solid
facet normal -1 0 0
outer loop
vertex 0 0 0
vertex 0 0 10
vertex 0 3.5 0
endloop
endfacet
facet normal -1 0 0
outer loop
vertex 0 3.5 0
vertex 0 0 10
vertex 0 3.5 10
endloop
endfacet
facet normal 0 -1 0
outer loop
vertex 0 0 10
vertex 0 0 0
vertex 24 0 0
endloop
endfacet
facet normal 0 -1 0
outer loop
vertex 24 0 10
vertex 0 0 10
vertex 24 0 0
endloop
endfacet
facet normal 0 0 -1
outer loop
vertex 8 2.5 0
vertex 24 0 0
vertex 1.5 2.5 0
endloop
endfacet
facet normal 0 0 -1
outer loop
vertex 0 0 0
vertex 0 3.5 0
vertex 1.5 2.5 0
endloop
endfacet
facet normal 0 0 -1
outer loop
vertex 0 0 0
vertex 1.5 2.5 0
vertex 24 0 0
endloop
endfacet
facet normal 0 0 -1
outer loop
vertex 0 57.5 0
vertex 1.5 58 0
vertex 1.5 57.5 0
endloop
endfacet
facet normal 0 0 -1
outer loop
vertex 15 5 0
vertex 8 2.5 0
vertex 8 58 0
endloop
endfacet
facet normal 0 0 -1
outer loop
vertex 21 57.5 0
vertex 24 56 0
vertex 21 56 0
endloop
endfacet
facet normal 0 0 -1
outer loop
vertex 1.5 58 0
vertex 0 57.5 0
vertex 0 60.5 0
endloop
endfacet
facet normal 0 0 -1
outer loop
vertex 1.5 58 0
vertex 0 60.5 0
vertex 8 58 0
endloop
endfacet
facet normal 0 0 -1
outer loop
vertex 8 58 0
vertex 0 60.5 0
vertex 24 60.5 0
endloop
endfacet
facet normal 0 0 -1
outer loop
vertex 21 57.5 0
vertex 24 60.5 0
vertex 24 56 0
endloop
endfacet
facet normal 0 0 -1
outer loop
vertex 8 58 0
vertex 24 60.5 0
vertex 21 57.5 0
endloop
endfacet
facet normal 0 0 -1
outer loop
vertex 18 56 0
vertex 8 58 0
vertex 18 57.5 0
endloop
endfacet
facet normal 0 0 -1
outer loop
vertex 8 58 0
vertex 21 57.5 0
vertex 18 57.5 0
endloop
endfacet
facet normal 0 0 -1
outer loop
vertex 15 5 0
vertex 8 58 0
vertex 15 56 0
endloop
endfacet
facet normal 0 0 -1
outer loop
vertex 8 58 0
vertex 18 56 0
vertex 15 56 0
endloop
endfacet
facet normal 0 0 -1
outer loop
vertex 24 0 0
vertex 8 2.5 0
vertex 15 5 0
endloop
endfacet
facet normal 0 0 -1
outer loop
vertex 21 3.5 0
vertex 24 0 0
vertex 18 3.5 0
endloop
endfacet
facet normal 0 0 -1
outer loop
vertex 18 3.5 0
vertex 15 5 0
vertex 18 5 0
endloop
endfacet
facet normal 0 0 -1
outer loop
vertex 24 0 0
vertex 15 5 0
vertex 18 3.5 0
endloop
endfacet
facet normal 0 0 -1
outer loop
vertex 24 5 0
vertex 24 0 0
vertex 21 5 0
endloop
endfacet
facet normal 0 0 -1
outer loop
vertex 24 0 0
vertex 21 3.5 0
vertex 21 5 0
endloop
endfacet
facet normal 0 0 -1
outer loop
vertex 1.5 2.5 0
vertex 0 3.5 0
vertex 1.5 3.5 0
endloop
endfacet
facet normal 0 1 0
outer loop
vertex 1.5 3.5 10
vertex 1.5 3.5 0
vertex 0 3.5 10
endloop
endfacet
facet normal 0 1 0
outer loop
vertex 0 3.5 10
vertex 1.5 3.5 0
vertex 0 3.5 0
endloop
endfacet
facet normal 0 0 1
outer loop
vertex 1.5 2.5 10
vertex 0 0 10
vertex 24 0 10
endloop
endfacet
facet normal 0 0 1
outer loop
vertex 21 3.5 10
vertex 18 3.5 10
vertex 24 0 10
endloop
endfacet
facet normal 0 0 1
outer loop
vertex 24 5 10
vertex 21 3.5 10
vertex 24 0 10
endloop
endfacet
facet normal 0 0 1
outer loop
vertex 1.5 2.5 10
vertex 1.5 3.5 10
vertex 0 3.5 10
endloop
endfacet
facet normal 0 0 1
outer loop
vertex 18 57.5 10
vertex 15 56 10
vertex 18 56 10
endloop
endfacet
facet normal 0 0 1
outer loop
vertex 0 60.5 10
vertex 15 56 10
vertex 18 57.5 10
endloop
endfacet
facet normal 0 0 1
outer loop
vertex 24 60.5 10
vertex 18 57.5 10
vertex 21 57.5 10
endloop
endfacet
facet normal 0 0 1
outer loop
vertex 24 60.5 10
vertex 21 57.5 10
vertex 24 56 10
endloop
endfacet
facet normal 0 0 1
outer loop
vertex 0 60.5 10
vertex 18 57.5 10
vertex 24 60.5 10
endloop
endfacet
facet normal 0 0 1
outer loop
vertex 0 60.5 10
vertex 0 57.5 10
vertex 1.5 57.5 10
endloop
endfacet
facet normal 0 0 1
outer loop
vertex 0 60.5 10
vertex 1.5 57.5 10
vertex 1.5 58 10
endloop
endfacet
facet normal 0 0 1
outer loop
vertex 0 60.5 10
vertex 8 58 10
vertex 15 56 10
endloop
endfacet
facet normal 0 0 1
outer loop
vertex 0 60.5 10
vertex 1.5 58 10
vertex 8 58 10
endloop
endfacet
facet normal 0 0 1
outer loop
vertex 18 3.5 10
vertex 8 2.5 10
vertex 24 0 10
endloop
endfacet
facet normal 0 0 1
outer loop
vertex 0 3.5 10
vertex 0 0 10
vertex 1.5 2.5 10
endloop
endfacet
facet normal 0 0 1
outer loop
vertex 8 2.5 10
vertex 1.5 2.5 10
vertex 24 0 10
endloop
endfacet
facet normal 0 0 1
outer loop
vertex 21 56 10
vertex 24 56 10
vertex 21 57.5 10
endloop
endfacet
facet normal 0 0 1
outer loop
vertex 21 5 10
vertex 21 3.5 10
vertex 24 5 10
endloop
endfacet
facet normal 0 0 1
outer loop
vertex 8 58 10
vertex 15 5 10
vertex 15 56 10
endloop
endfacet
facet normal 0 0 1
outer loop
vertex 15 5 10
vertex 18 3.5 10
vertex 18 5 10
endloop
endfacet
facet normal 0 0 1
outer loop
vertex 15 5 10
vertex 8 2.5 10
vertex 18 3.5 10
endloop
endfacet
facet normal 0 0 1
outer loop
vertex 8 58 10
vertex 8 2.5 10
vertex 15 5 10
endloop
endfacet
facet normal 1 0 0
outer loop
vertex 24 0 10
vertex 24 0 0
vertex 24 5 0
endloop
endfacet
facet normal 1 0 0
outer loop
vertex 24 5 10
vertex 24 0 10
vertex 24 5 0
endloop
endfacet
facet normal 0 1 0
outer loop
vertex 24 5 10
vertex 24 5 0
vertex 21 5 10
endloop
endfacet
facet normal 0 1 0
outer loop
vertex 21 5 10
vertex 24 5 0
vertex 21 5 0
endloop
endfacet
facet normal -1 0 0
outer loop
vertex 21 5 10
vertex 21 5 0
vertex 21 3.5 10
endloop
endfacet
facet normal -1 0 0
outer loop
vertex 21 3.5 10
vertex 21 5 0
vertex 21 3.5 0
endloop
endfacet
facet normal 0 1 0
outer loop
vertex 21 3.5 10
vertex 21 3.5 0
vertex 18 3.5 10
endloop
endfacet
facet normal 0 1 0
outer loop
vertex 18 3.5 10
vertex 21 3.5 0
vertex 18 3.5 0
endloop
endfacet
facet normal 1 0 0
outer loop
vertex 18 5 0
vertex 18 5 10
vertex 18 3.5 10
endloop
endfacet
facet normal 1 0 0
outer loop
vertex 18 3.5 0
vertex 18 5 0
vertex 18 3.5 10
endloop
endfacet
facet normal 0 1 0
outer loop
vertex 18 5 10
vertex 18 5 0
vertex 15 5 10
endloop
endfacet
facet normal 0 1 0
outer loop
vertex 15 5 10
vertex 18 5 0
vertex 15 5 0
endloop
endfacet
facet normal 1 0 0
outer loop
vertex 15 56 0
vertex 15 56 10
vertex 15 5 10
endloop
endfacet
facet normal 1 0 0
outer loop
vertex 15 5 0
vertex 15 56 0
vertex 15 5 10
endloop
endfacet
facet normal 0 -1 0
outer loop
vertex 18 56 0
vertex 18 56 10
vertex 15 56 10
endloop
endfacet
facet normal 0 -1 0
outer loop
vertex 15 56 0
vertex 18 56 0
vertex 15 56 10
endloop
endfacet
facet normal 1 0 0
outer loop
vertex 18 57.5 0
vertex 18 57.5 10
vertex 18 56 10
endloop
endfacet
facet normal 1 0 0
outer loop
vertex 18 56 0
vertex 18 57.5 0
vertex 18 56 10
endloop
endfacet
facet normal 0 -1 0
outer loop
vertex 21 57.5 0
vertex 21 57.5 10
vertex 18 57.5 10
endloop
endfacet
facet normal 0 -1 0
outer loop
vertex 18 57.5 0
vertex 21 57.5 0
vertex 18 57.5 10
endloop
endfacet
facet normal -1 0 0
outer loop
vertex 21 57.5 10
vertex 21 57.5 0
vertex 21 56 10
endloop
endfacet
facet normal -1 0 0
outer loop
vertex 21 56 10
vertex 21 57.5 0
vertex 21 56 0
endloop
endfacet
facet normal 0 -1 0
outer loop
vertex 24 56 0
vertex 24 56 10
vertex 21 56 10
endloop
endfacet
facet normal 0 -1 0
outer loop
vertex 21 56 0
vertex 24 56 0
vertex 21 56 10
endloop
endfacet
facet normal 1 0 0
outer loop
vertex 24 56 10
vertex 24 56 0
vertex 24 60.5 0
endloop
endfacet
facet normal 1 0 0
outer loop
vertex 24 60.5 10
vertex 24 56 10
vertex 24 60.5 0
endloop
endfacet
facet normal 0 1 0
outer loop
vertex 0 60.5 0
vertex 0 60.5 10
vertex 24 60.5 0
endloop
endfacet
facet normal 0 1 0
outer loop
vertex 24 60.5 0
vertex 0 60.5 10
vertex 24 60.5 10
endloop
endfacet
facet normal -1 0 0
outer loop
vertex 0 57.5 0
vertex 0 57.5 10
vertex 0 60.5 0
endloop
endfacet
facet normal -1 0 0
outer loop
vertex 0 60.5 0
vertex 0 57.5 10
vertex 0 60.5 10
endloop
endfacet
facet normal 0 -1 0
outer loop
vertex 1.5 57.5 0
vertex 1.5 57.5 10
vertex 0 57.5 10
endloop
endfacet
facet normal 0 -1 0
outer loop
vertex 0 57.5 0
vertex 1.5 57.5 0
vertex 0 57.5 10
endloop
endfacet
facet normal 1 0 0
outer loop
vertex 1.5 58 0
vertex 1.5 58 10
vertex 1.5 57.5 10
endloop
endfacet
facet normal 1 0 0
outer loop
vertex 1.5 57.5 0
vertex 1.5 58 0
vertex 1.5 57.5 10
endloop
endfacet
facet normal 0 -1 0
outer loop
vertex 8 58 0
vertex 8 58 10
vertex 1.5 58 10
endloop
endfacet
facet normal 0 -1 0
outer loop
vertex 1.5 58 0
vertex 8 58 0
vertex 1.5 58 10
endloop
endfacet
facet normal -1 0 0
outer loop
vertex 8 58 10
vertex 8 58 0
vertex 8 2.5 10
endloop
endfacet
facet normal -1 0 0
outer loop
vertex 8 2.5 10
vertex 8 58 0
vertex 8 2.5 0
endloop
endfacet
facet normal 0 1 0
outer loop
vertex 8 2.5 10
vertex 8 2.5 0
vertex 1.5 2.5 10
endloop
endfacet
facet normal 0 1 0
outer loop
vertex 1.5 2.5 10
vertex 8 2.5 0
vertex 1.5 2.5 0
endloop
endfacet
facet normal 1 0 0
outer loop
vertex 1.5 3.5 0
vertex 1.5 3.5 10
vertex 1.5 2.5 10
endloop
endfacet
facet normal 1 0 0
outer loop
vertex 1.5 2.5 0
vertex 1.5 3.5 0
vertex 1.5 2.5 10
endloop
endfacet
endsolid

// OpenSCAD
// from http://www.thingiverse.com/thing:107068
module example003()
{
	difference() {
		union() {
			translate([0,0,0]) {
				cube([24, 60.5, 10]);
			}
		}


			translate([1.5,2.5,-1]) {
				  cube([6.5, 55.5, 15]);
			}
			translate([-5,3.5,-1]) {
				cube([11, 54, 15]);
			}

			translate([18,3.5,-1]) {
				cube([3, 54, 15]);
			}

			translate([15,5,-1]) {
				cube([15, 51, 15]);
			}

	}
}

example003();
